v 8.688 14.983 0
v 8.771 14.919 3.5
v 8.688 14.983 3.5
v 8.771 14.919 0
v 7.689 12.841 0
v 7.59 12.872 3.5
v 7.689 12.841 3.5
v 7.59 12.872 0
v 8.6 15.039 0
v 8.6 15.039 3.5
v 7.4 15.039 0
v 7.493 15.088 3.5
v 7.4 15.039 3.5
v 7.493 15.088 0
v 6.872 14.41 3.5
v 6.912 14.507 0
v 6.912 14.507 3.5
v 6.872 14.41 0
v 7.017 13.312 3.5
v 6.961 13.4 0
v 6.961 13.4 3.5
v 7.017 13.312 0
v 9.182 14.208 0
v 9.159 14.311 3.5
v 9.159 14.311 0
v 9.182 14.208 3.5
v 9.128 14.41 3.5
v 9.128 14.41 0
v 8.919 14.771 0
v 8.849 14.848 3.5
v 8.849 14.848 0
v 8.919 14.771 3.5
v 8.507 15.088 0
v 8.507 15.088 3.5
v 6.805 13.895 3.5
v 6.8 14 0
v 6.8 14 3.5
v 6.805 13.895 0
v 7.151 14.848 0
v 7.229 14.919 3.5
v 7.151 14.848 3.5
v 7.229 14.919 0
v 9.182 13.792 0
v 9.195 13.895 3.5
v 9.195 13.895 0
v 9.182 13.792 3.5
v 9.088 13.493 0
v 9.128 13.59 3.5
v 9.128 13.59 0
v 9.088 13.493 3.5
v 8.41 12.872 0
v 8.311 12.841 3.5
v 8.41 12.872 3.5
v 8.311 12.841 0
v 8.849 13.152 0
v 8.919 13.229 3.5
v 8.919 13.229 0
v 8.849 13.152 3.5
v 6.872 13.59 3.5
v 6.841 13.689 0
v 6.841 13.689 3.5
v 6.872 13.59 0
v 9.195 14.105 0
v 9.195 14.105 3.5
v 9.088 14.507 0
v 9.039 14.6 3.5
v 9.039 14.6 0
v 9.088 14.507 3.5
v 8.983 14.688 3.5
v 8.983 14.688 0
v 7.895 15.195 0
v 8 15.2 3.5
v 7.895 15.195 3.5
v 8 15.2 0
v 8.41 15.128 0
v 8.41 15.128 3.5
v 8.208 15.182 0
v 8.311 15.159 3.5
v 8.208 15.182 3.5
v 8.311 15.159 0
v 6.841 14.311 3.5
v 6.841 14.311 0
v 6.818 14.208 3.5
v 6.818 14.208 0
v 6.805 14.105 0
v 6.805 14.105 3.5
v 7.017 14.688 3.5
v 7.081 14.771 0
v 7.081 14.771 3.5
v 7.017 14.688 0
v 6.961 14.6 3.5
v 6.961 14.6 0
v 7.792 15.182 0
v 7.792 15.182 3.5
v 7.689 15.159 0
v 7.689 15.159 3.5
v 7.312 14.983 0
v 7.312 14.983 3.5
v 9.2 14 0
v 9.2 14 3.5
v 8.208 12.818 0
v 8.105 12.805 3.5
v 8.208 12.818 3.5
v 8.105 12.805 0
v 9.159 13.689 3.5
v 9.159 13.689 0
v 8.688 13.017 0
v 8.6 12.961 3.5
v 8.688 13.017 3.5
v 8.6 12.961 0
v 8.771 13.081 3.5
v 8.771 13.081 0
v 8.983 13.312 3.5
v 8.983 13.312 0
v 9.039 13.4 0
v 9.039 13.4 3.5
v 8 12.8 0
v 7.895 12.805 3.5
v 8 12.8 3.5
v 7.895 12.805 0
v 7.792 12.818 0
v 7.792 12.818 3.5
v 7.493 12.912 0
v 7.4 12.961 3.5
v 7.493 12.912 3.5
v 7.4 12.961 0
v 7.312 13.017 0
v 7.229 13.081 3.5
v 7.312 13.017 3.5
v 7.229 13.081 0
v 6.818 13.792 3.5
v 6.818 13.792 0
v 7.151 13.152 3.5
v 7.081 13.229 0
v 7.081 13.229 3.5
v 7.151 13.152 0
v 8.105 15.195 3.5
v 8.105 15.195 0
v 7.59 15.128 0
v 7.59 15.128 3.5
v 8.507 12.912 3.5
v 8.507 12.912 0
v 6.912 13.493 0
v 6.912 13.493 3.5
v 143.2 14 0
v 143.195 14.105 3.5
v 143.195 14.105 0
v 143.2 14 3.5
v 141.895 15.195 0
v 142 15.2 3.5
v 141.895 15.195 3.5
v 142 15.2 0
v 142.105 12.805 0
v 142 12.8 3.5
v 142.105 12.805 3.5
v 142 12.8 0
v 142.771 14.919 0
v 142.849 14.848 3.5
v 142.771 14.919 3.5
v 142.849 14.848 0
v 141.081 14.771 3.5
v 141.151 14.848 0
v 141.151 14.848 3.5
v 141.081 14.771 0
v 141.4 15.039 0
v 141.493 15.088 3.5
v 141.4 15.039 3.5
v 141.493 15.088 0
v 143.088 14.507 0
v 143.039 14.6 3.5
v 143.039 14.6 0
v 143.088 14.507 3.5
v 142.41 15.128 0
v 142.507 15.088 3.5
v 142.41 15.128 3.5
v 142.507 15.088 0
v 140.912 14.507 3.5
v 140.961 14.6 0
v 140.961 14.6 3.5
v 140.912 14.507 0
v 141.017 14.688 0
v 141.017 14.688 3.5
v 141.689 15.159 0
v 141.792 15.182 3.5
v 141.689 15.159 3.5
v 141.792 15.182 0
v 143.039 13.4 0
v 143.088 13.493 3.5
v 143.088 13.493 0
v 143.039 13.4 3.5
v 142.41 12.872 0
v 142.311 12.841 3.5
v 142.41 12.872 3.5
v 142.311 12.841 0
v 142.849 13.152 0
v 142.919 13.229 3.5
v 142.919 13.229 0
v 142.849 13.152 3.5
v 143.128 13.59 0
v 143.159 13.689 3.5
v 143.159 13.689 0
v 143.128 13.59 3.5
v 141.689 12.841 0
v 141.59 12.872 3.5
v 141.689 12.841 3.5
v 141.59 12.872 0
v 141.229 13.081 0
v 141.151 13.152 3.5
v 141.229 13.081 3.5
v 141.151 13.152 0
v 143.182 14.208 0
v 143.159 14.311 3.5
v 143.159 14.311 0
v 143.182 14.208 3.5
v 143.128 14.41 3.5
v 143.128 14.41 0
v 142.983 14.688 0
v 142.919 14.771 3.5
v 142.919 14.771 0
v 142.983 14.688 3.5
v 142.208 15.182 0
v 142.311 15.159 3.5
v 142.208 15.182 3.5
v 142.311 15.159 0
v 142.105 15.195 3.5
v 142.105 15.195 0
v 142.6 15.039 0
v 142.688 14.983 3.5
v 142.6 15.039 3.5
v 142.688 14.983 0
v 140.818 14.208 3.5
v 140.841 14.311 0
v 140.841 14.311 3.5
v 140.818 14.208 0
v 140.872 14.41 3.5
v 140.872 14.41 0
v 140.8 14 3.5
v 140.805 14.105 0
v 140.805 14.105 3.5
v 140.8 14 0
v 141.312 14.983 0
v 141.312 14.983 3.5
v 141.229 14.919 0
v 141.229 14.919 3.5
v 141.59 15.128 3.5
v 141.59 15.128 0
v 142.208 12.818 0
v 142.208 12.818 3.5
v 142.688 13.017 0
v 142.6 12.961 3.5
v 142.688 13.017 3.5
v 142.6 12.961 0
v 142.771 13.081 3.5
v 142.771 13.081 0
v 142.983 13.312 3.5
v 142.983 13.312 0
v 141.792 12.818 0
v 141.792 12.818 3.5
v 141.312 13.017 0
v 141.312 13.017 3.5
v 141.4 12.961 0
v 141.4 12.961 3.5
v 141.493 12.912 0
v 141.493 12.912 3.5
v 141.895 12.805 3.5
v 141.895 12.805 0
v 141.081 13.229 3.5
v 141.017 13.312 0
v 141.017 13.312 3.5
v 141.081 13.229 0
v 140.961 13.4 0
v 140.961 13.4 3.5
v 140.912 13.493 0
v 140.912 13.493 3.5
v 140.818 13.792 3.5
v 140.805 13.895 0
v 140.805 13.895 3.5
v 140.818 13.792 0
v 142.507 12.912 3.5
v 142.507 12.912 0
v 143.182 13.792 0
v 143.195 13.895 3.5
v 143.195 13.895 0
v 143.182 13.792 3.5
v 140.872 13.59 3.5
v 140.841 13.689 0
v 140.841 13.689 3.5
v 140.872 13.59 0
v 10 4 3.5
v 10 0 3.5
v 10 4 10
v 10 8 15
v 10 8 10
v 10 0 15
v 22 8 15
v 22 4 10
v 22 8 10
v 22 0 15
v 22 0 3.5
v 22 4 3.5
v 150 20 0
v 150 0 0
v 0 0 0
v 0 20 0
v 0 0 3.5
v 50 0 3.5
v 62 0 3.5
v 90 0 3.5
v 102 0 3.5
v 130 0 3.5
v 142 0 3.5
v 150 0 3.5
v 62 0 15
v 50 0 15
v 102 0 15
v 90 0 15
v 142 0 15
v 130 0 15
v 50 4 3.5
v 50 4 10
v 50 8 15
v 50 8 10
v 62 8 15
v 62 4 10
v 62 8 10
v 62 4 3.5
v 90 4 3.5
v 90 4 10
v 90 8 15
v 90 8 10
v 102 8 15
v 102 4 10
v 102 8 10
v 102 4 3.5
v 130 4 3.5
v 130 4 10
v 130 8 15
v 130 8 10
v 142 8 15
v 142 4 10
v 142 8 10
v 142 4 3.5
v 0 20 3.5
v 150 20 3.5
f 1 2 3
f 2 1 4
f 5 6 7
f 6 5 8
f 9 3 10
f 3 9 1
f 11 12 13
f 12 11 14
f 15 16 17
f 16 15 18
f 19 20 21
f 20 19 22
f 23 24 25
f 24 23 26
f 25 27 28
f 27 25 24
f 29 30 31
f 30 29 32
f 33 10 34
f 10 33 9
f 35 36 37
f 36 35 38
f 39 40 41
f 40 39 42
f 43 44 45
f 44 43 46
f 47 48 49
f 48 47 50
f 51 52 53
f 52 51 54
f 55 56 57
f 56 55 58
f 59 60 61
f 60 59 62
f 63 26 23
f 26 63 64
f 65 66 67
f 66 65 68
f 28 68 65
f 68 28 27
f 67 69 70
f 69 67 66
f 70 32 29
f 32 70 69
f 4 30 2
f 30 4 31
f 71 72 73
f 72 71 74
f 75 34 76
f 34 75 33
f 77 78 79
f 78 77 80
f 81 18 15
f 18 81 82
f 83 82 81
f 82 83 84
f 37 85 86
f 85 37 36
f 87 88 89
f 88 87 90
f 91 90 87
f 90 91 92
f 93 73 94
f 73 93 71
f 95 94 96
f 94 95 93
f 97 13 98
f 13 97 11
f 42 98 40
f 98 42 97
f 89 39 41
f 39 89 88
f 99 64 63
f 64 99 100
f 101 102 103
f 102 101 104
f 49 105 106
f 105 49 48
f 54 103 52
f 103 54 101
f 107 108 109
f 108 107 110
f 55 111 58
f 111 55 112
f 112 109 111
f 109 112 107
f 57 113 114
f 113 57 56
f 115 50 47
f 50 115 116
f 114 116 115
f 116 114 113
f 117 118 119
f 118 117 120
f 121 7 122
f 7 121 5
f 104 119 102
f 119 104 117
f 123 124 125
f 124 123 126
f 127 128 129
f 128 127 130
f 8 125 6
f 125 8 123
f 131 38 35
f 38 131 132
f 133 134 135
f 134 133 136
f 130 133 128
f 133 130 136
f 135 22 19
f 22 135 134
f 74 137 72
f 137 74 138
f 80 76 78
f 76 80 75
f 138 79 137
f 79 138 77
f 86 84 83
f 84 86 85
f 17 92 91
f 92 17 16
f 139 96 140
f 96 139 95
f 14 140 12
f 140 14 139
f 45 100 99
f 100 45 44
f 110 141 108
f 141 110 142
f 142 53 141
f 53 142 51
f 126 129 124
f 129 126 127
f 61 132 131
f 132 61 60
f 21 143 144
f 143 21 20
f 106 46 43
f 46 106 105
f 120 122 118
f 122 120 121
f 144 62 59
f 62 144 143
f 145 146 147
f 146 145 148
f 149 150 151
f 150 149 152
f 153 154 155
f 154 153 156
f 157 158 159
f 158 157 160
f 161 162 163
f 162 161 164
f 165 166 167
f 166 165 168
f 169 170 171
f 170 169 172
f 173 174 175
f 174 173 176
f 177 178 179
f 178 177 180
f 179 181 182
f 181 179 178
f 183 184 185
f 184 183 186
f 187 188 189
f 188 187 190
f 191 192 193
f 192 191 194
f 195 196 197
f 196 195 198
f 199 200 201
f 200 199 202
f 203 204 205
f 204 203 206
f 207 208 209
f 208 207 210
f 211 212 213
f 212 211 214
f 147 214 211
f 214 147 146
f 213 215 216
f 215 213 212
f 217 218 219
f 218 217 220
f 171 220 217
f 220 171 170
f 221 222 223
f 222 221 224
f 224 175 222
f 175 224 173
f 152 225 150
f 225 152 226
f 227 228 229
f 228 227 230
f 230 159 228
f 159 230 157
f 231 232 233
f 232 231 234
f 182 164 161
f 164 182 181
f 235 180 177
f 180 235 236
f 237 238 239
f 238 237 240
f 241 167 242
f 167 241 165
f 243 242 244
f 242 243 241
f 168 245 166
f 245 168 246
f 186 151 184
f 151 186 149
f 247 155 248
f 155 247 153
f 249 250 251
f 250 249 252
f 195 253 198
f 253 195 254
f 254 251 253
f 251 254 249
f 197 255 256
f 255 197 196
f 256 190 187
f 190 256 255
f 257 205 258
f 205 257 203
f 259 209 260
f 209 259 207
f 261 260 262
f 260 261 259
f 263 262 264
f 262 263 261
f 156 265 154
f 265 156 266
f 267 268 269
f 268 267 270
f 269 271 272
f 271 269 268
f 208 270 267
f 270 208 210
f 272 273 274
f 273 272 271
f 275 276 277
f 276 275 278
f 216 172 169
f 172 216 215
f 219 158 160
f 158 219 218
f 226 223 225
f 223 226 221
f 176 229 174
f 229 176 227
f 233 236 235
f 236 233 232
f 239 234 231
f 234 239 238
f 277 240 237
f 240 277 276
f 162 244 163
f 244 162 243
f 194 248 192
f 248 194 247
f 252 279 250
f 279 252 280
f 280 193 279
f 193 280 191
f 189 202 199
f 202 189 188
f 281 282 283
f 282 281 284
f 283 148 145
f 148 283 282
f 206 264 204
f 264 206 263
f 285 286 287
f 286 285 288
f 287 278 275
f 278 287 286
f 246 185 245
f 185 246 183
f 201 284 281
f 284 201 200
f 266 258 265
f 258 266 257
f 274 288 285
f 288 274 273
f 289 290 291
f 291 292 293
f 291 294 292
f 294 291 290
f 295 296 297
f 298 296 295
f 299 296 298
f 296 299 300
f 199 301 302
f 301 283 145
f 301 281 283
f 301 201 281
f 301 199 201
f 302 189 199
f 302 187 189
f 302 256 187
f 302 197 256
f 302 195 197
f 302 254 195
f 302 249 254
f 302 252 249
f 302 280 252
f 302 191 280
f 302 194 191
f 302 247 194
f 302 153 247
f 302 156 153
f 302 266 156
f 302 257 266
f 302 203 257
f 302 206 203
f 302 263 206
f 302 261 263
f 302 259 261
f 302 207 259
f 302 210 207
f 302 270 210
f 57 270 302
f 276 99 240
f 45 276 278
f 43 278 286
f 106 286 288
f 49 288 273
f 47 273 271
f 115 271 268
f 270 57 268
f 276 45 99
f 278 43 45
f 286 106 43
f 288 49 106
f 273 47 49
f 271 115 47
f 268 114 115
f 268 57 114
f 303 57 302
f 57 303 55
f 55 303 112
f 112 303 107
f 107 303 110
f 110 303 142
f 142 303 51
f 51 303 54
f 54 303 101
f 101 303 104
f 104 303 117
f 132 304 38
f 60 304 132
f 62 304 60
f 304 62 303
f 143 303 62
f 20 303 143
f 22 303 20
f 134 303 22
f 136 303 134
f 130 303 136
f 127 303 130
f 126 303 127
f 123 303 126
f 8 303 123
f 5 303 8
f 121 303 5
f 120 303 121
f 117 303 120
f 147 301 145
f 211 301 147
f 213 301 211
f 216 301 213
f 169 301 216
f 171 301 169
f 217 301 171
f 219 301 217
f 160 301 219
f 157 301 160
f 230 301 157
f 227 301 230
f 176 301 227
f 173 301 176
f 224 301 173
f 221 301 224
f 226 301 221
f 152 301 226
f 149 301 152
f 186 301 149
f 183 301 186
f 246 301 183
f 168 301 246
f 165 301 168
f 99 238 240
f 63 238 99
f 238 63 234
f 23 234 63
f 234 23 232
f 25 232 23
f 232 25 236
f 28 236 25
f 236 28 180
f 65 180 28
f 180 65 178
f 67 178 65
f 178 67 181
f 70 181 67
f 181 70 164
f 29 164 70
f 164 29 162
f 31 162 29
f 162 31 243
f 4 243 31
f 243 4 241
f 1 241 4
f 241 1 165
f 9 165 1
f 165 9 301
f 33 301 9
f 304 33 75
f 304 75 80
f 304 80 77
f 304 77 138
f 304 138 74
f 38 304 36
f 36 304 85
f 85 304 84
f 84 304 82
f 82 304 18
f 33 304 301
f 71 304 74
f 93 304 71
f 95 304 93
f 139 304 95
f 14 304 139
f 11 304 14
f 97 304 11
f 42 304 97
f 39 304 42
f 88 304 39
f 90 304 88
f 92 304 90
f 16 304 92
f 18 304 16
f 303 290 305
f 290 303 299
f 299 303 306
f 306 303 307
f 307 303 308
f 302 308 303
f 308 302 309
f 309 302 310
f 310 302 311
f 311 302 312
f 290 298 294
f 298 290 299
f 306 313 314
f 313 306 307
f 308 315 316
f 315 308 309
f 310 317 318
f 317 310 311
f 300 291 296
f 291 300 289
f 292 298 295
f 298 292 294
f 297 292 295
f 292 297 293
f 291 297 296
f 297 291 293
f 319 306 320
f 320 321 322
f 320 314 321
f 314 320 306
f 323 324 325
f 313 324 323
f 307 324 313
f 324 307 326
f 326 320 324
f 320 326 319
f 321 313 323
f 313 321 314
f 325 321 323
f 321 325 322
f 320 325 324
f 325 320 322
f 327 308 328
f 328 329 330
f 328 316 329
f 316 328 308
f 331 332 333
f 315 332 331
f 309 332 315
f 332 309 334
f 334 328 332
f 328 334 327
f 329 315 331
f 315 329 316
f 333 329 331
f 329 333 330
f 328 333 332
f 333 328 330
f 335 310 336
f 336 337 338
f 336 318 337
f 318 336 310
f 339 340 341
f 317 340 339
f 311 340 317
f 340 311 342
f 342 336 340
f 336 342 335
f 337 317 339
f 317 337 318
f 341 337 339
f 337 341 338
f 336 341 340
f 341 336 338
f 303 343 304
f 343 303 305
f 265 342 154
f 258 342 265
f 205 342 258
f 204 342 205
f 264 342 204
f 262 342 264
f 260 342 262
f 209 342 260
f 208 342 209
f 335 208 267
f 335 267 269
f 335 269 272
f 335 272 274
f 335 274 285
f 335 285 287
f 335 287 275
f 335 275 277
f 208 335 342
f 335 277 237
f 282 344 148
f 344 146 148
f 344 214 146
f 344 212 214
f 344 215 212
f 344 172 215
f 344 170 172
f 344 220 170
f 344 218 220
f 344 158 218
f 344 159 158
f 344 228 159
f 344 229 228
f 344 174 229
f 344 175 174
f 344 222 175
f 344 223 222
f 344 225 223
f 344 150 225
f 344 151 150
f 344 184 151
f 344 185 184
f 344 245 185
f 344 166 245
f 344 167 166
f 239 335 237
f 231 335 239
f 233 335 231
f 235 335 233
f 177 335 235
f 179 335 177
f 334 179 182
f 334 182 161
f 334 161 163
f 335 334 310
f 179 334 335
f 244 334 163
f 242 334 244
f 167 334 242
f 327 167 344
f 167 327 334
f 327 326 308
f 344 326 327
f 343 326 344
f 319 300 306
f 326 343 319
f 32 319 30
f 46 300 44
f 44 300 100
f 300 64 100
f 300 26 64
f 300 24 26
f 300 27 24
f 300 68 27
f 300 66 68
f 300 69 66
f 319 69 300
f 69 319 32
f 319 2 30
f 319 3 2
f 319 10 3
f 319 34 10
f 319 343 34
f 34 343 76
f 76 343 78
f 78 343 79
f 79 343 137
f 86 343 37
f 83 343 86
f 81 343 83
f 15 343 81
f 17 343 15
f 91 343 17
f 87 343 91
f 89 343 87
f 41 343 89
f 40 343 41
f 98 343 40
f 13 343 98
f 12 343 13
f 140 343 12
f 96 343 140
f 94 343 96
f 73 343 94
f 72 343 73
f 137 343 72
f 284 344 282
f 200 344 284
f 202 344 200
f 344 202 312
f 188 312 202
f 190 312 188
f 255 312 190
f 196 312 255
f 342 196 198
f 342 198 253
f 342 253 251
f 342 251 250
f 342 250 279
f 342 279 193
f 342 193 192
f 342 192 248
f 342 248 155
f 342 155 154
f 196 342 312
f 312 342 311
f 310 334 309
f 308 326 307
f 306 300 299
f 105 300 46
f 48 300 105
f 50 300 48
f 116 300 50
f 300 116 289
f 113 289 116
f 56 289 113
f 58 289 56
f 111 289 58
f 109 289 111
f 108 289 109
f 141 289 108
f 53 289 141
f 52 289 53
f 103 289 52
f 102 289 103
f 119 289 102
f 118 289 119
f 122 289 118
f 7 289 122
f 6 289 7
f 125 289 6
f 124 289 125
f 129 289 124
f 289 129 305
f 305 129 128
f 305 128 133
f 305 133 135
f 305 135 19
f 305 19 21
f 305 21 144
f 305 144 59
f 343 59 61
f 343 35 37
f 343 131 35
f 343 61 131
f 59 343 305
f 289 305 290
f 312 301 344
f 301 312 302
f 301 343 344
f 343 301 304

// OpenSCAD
$fs = 0.1;  // Don't generate smaller facets than 0.1 mm
$fa = 5;    // Don't generate larger angles than 5 degrees

module base() {
    color("Blue")cube([150, 20, 3.5]);
    }
    
module hook() {
    union() {
        color("White")cube([12,4,13]);
        color("White")translate([0,0,10])cube([12,8,5]);
        }
    }    

module screwHoles() {
        translate([8,14,-1])cylinder(r=1.2, h=20);
        translate([142,14,-1])cylinder(r=1.2, h=20);

    }
difference(){
    union(){    
        base();
        for (a = [ 0 : 40 : 140 ]) translate([a + 10,0,0]) hook();
        }
    screwHoles();
}
